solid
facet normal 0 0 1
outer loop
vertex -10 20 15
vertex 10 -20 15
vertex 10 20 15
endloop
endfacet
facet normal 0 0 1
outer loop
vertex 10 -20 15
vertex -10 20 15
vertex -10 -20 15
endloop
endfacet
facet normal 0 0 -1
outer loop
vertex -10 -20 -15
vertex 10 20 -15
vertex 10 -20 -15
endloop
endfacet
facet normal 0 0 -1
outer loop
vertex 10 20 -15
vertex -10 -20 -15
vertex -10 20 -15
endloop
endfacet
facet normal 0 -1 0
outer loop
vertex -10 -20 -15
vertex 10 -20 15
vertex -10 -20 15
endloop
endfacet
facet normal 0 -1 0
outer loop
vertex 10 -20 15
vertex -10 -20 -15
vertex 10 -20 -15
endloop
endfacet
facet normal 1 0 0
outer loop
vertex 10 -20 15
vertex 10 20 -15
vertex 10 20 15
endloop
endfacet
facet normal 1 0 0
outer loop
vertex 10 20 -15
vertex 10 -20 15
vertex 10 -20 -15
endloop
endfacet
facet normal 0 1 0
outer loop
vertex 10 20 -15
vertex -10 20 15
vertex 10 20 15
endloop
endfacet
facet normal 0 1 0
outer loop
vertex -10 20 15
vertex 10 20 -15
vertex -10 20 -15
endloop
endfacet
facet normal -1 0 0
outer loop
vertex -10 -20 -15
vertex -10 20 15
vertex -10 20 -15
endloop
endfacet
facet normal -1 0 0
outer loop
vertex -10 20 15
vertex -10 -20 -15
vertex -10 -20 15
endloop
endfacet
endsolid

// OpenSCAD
// ========================================
// a 20 x 40 x 30 mm box
// NeuroCAD canonical IR; dimensions are millimetres
// ========================================
$fn = 48;

cube(size=[20, 40, 30], center=true);
